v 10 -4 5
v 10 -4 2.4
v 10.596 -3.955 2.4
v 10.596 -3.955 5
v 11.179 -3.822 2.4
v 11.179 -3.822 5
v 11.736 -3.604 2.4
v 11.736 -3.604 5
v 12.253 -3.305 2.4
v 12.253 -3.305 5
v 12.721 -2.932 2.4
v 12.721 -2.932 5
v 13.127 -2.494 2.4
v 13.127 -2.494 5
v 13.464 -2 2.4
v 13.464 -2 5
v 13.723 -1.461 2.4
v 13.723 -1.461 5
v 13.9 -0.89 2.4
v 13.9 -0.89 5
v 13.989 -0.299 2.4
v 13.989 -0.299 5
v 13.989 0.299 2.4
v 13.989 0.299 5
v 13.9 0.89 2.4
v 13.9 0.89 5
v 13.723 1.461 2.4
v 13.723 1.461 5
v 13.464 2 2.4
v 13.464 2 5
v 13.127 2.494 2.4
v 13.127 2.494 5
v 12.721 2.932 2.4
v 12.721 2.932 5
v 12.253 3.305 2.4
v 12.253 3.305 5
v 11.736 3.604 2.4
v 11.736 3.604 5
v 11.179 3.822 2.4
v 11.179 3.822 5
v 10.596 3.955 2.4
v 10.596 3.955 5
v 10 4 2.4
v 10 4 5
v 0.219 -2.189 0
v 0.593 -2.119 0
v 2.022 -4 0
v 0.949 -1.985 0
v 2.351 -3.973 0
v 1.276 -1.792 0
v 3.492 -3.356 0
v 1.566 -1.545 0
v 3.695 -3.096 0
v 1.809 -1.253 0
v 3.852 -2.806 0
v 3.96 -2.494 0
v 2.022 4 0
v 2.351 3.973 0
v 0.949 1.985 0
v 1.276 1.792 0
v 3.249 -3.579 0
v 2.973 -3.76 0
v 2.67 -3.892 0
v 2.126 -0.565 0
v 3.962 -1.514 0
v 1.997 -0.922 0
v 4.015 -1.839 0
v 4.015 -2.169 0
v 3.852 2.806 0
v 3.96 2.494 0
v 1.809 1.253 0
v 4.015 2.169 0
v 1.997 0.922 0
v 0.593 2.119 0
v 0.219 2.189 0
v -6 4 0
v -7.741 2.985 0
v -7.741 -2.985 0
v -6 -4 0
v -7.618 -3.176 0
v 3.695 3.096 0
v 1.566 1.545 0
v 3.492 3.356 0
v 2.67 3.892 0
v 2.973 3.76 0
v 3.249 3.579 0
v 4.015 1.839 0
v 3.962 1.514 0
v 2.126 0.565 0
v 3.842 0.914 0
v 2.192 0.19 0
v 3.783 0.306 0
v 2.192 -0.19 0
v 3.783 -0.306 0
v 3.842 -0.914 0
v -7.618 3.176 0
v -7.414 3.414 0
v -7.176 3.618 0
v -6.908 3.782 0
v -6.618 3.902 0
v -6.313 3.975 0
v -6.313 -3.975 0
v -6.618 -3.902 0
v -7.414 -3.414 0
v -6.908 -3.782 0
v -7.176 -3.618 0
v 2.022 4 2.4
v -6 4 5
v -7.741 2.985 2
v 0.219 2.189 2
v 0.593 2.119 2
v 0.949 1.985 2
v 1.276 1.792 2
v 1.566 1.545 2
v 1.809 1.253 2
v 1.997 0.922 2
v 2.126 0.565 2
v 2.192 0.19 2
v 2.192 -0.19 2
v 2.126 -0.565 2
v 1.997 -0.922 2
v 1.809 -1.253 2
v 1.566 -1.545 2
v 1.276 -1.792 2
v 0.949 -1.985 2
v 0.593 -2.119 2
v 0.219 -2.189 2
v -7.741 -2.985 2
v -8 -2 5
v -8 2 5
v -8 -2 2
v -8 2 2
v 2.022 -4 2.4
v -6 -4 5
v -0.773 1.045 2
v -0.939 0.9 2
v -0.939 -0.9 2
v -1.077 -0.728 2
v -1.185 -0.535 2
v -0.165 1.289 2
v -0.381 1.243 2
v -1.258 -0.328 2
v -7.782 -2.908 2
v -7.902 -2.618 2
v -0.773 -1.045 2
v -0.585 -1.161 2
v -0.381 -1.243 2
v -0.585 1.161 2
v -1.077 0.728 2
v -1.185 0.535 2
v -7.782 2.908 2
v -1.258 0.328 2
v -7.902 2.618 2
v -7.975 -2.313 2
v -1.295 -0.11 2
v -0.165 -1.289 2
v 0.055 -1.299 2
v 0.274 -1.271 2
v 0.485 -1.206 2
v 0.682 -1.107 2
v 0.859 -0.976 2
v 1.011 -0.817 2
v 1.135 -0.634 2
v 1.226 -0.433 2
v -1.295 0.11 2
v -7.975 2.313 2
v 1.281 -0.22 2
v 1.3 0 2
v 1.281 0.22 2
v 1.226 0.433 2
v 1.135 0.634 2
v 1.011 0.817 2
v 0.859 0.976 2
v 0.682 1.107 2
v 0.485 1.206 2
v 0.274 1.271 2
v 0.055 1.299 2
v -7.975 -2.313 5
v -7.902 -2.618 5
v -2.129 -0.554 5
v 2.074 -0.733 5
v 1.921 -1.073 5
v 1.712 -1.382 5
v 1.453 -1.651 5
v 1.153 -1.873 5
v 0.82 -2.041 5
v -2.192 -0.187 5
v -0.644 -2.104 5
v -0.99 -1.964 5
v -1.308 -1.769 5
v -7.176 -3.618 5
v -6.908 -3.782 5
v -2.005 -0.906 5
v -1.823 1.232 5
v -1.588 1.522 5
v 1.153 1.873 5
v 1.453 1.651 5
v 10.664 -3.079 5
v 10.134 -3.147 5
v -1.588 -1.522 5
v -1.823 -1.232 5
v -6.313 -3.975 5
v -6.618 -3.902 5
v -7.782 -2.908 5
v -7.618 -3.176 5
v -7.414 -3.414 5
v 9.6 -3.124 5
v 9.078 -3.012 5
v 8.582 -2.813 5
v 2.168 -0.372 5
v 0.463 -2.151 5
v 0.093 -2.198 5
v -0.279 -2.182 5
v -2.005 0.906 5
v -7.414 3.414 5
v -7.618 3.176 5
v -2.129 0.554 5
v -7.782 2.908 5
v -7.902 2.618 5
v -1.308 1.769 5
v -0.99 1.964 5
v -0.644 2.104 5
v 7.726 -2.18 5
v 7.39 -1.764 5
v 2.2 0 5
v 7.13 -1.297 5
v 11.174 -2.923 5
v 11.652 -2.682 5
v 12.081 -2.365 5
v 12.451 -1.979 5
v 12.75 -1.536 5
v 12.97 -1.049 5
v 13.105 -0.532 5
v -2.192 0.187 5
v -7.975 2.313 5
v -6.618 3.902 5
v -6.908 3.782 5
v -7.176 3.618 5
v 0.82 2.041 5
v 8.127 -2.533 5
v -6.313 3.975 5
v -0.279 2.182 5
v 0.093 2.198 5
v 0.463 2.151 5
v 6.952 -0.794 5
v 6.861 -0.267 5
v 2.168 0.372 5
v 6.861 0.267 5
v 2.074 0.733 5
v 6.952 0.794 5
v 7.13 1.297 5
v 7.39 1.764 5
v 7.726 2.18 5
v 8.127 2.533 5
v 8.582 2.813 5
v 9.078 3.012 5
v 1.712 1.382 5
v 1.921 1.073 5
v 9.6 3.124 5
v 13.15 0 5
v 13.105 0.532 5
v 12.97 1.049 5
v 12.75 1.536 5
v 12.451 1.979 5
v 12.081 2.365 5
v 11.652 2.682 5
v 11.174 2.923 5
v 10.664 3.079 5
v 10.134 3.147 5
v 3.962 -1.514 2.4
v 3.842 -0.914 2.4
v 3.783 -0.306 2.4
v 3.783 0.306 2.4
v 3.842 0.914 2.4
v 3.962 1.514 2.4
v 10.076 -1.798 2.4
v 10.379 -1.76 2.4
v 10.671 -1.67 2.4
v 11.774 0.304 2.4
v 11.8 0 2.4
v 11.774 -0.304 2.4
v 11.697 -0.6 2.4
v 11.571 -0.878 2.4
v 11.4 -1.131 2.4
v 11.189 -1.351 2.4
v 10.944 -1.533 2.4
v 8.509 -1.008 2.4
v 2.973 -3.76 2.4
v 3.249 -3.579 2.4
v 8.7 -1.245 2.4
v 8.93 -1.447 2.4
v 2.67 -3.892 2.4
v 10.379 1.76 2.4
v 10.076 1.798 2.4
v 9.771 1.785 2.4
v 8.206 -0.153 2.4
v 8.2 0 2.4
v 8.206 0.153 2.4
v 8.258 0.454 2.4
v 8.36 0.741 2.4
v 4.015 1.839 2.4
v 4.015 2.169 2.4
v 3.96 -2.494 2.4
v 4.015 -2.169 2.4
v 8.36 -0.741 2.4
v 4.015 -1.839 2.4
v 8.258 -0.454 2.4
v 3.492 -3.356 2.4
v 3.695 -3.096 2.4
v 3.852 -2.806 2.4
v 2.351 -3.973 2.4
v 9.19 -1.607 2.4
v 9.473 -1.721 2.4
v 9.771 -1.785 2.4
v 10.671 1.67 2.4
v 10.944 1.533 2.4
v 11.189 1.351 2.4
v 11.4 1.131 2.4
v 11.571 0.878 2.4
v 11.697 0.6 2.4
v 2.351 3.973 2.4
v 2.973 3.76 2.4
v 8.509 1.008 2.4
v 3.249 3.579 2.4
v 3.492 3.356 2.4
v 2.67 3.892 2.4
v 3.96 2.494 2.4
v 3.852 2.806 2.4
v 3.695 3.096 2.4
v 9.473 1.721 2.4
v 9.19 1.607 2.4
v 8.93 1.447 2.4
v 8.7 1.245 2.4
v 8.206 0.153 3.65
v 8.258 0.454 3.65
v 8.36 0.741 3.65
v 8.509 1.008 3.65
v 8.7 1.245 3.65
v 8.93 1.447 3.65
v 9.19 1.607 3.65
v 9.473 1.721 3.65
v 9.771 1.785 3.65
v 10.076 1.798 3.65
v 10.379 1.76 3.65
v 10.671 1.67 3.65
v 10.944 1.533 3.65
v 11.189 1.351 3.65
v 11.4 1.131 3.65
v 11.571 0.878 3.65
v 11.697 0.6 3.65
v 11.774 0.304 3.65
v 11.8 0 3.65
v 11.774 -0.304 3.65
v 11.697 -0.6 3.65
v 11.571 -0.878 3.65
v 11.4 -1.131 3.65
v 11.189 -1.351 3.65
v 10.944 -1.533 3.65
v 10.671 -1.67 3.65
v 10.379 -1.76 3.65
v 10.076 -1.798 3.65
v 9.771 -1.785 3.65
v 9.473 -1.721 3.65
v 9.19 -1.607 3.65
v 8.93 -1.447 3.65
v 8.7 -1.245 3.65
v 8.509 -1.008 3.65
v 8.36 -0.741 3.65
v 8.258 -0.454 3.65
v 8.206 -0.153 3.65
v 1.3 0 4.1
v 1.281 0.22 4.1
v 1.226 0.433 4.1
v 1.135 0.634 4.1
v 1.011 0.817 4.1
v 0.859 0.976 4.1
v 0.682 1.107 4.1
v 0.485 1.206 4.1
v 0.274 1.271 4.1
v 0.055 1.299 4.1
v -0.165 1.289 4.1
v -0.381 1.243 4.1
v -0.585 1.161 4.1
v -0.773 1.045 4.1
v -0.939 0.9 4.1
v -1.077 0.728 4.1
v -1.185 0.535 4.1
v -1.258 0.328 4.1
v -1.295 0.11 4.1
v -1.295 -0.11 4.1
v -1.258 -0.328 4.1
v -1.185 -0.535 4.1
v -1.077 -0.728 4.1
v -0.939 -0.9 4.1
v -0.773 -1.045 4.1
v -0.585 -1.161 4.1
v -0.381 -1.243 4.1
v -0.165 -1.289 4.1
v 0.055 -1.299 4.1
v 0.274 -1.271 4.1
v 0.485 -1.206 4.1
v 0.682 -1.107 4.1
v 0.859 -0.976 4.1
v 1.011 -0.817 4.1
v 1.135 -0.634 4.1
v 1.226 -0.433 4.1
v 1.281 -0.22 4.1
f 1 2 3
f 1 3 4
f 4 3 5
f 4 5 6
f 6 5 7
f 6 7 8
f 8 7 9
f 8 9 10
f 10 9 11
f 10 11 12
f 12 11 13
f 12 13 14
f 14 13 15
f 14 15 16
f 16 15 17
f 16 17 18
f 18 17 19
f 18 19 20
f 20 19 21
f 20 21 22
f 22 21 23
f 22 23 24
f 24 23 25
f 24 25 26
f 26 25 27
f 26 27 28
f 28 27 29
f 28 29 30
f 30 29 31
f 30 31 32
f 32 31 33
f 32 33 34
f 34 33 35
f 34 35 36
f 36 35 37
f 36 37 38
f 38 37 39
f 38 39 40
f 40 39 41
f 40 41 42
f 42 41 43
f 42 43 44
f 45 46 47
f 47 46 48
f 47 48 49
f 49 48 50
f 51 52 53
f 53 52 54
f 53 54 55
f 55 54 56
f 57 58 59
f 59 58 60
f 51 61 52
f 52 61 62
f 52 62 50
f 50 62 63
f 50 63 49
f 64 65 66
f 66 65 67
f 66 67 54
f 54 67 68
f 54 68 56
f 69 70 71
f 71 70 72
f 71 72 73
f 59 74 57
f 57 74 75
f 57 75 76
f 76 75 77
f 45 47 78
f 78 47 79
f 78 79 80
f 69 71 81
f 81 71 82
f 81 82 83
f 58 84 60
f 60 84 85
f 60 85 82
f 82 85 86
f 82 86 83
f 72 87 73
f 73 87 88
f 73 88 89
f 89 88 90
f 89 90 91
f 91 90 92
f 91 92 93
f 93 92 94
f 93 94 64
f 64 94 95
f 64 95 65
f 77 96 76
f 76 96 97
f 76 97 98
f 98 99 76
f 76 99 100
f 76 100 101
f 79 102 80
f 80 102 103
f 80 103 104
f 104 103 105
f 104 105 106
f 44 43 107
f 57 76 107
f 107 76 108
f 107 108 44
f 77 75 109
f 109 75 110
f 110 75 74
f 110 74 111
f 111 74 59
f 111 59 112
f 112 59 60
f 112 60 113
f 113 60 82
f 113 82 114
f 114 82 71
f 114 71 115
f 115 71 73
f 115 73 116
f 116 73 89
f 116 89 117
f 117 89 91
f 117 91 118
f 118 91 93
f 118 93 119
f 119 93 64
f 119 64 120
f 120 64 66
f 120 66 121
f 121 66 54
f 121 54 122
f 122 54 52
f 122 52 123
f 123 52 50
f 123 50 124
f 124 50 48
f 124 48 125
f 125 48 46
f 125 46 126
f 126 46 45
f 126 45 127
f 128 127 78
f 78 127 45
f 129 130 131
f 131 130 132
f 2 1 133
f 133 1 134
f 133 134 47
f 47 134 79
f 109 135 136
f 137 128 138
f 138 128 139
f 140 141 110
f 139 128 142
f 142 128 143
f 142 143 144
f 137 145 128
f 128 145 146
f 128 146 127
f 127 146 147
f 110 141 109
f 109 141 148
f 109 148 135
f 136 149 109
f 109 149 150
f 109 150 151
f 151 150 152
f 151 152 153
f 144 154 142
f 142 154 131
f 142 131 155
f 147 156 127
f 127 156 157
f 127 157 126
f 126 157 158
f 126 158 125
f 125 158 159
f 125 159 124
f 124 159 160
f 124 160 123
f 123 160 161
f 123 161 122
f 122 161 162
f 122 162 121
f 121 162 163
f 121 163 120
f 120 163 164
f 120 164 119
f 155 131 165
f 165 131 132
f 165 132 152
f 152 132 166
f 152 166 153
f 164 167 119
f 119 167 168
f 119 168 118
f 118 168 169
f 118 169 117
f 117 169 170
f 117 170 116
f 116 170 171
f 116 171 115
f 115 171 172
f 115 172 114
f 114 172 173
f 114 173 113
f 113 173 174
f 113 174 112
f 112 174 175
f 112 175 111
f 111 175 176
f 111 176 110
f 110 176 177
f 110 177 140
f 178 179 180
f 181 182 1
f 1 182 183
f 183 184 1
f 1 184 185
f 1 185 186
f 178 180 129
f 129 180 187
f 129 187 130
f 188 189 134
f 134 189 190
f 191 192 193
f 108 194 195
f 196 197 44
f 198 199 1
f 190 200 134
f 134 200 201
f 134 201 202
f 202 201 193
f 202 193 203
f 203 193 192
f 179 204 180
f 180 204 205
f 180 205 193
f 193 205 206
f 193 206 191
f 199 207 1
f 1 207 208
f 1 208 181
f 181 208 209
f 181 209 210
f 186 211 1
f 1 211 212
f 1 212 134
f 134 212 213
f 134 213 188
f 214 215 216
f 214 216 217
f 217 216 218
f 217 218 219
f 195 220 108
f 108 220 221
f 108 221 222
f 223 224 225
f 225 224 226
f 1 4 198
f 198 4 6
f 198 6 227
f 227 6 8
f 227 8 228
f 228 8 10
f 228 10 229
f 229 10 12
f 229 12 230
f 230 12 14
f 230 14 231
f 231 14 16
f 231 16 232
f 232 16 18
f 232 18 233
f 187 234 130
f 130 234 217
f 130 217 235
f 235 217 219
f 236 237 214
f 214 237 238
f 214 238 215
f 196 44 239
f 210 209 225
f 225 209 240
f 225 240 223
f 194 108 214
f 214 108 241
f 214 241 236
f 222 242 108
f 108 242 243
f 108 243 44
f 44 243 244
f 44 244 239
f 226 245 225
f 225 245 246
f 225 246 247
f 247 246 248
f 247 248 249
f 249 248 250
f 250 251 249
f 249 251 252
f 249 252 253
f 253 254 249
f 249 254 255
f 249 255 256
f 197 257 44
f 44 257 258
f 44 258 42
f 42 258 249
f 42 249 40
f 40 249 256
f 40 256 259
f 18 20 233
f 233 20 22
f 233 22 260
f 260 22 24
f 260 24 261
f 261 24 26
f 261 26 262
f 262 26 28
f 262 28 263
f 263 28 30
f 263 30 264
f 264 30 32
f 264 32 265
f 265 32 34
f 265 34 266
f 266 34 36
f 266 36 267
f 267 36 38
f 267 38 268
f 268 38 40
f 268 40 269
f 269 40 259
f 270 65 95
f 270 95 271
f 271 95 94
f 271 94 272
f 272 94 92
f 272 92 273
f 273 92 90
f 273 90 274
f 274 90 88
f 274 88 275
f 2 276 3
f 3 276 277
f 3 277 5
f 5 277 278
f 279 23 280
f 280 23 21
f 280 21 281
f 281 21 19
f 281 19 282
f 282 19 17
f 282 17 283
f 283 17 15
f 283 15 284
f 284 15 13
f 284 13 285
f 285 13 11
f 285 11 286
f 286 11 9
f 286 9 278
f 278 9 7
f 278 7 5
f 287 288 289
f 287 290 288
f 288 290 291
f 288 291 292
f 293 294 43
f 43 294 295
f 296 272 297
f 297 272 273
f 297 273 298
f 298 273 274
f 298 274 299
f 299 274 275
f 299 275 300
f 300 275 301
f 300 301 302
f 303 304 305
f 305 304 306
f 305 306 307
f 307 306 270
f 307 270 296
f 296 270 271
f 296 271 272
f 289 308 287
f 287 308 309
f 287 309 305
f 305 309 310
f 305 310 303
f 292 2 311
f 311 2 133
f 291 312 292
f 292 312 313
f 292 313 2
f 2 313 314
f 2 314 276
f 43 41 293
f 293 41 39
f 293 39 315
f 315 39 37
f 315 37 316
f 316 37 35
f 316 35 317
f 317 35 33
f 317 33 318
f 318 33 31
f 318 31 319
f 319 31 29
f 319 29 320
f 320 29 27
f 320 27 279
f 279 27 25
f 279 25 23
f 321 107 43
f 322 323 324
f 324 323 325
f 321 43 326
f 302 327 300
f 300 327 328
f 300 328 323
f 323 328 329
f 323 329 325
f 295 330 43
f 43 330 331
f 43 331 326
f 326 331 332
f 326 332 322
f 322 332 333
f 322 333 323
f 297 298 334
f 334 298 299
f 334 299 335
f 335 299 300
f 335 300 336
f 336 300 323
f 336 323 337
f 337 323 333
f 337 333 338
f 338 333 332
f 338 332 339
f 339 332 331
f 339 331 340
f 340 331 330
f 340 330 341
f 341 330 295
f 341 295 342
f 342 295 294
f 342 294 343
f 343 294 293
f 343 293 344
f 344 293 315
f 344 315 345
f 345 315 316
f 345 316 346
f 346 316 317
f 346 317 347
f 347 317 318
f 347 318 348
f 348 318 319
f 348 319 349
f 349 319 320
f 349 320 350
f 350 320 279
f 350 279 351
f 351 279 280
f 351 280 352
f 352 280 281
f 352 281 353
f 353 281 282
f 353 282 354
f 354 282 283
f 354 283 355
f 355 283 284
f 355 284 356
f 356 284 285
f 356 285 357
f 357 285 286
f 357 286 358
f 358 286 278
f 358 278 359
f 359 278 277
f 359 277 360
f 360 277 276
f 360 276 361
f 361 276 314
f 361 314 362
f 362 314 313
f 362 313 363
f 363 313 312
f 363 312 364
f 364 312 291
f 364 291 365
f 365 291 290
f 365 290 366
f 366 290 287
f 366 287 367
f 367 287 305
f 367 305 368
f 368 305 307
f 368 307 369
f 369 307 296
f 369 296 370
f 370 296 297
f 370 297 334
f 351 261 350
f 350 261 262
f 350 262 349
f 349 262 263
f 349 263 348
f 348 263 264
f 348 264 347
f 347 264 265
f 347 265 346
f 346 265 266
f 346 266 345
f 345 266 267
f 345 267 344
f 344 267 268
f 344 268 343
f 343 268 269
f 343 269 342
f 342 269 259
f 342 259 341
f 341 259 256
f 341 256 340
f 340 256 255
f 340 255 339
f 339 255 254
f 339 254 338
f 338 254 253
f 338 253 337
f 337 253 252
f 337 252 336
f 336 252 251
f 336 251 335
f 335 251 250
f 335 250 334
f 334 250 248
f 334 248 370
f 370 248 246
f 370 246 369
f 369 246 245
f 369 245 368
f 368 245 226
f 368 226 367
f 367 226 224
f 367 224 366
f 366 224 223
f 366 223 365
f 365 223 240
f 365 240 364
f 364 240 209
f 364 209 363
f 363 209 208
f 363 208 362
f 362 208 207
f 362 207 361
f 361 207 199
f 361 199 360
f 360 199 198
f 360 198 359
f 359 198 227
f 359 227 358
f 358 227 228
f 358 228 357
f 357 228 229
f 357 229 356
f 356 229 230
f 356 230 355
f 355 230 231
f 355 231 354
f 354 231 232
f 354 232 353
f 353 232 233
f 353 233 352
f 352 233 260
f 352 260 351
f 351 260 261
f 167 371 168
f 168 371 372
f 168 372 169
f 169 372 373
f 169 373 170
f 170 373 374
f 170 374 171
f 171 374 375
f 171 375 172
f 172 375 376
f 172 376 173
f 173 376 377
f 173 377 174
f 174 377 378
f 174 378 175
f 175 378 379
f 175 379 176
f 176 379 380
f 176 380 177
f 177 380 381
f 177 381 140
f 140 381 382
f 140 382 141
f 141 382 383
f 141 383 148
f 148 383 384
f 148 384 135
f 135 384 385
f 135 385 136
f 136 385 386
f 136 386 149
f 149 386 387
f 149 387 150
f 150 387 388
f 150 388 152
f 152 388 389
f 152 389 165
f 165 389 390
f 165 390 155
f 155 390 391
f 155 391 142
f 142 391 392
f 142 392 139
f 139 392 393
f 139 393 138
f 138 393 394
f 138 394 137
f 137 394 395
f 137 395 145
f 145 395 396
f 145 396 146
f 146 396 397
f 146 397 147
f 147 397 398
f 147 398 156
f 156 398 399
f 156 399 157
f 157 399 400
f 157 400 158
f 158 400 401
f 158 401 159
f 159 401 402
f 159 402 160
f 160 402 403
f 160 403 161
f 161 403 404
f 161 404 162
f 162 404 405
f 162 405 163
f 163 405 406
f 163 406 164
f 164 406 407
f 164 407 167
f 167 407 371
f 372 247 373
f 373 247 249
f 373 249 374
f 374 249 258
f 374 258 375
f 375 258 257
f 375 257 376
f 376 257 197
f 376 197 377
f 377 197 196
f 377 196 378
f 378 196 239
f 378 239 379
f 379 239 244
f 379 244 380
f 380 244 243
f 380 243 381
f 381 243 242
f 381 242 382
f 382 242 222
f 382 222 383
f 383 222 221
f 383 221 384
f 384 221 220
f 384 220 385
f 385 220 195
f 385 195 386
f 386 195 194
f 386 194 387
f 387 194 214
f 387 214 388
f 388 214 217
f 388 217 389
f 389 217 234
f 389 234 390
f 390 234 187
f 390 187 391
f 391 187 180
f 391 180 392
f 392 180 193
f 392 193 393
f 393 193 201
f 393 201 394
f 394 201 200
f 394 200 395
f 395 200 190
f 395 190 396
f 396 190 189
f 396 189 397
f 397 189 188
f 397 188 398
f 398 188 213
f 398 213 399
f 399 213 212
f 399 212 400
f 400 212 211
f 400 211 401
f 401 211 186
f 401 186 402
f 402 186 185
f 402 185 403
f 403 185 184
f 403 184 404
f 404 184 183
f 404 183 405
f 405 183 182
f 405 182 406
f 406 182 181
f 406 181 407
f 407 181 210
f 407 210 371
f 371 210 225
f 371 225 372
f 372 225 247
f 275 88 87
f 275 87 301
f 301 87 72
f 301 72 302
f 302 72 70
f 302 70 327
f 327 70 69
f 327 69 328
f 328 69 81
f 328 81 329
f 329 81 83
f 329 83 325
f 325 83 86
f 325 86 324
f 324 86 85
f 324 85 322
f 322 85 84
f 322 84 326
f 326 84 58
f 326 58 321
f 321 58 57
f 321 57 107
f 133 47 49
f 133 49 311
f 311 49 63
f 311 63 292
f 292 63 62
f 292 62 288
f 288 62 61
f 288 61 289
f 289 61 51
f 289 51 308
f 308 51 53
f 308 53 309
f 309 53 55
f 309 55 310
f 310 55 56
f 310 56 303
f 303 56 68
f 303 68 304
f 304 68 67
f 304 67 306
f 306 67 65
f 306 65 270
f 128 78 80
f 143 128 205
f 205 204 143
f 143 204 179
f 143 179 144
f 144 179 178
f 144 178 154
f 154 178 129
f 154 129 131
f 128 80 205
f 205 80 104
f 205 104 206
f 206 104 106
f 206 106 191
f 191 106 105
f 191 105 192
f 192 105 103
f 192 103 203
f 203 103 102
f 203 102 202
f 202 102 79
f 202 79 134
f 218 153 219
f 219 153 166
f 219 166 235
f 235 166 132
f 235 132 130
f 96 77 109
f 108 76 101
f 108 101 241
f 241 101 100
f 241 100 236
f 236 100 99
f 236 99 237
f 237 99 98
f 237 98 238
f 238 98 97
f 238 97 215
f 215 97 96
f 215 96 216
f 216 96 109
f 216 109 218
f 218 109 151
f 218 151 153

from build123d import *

# Parameters (mm, degrees)
SKETCH1_R                                       = 1.725
BOSS_EXTRUDE1_DEPTH                             = 2
SKETCH2_R                                       = 1
SKETCH2_R_2                                     = 1.725
BOSS_EXTRUDE2_DEPTH                             = 3
SKETCH3_R                                       = 6.225
CUT_EXTRUDE1_DEPTH                              = 2.4
CSK_FOR_M3_FLAT_HEAD_MACHINE_SCREW2_D           = 3.6
CSK_FOR_M3_FLAT_HEAD_MACHINE_SCREW2_CSINK_D     = 6.3
CSK_FOR_M3_FLAT_HEAD_MACHINE_SCREW2_CSINK_ANGLE = 90
CSK_FOR_M2_FLAT_HEAD_MACHINE_SCREW1_D           = 2.6
CSK_FOR_M2_FLAT_HEAD_MACHINE_SCREW1_CSINK_D     = 4.4
CSK_FOR_M2_FLAT_HEAD_MACHINE_SCREW1_CSINK_ANGLE = 90
FILLET1_R                                       = 2


with BuildPart() as part:
    # Sketch1 → Boss-Extrude1 (new body)
    with BuildSketch(Plane.XY):
        with BuildLine():
            Line((10, 4), (-8, 4))
            Line((-8, 4), (-8, 3.010972637))
            Line((-8, 3.010972637), (0.218908182, 2.189081818))
            ThreePointArc((0.218908182, 2.189081818), (2.2, 0), (0.218908182, -2.189081818))
            Line((0.218908182, -2.189081818), (-8, -3.010972637))
            Line((-8, -3.010972637), (-8, -4))
            Line((-8, -4), (10, -4))
            ThreePointArc((10, -4), (14, 0), (10, 4))
        make_face()
        with Locations((10, 0)):
            Circle(SKETCH1_R, mode=Mode.SUBTRACT)
    extrude(amount=BOSS_EXTRUDE1_DEPTH)

    # Sketch2 → Boss-Extrude2 (add)
    with BuildSketch(Plane.XY.offset(2)):
        with BuildLine():
            Line((-8, 4), (-8, -4))
            Line((-8, -4), (10, -4))
            ThreePointArc((10, -4), (14, 0), (10, 4))
            Line((10, 4), (-8, 4))
        make_face()
        Circle(SKETCH2_R, mode=Mode.SUBTRACT)
        with Locations((10, 0)):
            Circle(SKETCH2_R_2, mode=Mode.SUBTRACT)
    extrude(amount=BOSS_EXTRUDE2_DEPTH)

    # Sketch3 → Cut-Extrude1 (cut)
    with BuildSketch(Plane(origin=(0, 0, 0), x_dir=(-1, 0, 0), z_dir=(0, 0, -1))):
        with Locations((-10, 0)):
            Circle(SKETCH3_R)
    extrude(amount=-CUT_EXTRUDE1_DEPTH, mode=Mode.SUBTRACT)

    # CSK for M3 Flat Head Machine Screw2 (through all)
    with Locations(Plane(origin=(10, 0, 5), x_dir=(1, 0, 0), z_dir=(0, 0, 1))):
        with Locations((0, 0)):
            CounterSinkHole(CSK_FOR_M3_FLAT_HEAD_MACHINE_SCREW2_D / 2, CSK_FOR_M3_FLAT_HEAD_MACHINE_SCREW2_CSINK_D / 2, counter_sink_angle=CSK_FOR_M3_FLAT_HEAD_MACHINE_SCREW2_CSINK_ANGLE)

    # CSK for M2 Flat Head Machine Screw1 (through all)
    with Locations(Plane.XY.offset(5)):
        with Locations((0, 0)):
            CounterSinkHole(CSK_FOR_M2_FLAT_HEAD_MACHINE_SCREW1_D / 2, CSK_FOR_M2_FLAT_HEAD_MACHINE_SCREW1_CSINK_D / 2, counter_sink_angle=CSK_FOR_M2_FLAT_HEAD_MACHINE_SCREW1_CSINK_ANGLE)

    # Fillet1
    fillet1_edges = [part.edges().sort_by_distance(p)[0] for p in [
        (5.230238476, 4, 1.2),
        (5.230238476, -4, 1.2),
        (-8, -4, 2.5),
        (-8, 4, 2.5),
    ]]
    fillet(fillet1_edges, radius=FILLET1_R)


solid = part.part
